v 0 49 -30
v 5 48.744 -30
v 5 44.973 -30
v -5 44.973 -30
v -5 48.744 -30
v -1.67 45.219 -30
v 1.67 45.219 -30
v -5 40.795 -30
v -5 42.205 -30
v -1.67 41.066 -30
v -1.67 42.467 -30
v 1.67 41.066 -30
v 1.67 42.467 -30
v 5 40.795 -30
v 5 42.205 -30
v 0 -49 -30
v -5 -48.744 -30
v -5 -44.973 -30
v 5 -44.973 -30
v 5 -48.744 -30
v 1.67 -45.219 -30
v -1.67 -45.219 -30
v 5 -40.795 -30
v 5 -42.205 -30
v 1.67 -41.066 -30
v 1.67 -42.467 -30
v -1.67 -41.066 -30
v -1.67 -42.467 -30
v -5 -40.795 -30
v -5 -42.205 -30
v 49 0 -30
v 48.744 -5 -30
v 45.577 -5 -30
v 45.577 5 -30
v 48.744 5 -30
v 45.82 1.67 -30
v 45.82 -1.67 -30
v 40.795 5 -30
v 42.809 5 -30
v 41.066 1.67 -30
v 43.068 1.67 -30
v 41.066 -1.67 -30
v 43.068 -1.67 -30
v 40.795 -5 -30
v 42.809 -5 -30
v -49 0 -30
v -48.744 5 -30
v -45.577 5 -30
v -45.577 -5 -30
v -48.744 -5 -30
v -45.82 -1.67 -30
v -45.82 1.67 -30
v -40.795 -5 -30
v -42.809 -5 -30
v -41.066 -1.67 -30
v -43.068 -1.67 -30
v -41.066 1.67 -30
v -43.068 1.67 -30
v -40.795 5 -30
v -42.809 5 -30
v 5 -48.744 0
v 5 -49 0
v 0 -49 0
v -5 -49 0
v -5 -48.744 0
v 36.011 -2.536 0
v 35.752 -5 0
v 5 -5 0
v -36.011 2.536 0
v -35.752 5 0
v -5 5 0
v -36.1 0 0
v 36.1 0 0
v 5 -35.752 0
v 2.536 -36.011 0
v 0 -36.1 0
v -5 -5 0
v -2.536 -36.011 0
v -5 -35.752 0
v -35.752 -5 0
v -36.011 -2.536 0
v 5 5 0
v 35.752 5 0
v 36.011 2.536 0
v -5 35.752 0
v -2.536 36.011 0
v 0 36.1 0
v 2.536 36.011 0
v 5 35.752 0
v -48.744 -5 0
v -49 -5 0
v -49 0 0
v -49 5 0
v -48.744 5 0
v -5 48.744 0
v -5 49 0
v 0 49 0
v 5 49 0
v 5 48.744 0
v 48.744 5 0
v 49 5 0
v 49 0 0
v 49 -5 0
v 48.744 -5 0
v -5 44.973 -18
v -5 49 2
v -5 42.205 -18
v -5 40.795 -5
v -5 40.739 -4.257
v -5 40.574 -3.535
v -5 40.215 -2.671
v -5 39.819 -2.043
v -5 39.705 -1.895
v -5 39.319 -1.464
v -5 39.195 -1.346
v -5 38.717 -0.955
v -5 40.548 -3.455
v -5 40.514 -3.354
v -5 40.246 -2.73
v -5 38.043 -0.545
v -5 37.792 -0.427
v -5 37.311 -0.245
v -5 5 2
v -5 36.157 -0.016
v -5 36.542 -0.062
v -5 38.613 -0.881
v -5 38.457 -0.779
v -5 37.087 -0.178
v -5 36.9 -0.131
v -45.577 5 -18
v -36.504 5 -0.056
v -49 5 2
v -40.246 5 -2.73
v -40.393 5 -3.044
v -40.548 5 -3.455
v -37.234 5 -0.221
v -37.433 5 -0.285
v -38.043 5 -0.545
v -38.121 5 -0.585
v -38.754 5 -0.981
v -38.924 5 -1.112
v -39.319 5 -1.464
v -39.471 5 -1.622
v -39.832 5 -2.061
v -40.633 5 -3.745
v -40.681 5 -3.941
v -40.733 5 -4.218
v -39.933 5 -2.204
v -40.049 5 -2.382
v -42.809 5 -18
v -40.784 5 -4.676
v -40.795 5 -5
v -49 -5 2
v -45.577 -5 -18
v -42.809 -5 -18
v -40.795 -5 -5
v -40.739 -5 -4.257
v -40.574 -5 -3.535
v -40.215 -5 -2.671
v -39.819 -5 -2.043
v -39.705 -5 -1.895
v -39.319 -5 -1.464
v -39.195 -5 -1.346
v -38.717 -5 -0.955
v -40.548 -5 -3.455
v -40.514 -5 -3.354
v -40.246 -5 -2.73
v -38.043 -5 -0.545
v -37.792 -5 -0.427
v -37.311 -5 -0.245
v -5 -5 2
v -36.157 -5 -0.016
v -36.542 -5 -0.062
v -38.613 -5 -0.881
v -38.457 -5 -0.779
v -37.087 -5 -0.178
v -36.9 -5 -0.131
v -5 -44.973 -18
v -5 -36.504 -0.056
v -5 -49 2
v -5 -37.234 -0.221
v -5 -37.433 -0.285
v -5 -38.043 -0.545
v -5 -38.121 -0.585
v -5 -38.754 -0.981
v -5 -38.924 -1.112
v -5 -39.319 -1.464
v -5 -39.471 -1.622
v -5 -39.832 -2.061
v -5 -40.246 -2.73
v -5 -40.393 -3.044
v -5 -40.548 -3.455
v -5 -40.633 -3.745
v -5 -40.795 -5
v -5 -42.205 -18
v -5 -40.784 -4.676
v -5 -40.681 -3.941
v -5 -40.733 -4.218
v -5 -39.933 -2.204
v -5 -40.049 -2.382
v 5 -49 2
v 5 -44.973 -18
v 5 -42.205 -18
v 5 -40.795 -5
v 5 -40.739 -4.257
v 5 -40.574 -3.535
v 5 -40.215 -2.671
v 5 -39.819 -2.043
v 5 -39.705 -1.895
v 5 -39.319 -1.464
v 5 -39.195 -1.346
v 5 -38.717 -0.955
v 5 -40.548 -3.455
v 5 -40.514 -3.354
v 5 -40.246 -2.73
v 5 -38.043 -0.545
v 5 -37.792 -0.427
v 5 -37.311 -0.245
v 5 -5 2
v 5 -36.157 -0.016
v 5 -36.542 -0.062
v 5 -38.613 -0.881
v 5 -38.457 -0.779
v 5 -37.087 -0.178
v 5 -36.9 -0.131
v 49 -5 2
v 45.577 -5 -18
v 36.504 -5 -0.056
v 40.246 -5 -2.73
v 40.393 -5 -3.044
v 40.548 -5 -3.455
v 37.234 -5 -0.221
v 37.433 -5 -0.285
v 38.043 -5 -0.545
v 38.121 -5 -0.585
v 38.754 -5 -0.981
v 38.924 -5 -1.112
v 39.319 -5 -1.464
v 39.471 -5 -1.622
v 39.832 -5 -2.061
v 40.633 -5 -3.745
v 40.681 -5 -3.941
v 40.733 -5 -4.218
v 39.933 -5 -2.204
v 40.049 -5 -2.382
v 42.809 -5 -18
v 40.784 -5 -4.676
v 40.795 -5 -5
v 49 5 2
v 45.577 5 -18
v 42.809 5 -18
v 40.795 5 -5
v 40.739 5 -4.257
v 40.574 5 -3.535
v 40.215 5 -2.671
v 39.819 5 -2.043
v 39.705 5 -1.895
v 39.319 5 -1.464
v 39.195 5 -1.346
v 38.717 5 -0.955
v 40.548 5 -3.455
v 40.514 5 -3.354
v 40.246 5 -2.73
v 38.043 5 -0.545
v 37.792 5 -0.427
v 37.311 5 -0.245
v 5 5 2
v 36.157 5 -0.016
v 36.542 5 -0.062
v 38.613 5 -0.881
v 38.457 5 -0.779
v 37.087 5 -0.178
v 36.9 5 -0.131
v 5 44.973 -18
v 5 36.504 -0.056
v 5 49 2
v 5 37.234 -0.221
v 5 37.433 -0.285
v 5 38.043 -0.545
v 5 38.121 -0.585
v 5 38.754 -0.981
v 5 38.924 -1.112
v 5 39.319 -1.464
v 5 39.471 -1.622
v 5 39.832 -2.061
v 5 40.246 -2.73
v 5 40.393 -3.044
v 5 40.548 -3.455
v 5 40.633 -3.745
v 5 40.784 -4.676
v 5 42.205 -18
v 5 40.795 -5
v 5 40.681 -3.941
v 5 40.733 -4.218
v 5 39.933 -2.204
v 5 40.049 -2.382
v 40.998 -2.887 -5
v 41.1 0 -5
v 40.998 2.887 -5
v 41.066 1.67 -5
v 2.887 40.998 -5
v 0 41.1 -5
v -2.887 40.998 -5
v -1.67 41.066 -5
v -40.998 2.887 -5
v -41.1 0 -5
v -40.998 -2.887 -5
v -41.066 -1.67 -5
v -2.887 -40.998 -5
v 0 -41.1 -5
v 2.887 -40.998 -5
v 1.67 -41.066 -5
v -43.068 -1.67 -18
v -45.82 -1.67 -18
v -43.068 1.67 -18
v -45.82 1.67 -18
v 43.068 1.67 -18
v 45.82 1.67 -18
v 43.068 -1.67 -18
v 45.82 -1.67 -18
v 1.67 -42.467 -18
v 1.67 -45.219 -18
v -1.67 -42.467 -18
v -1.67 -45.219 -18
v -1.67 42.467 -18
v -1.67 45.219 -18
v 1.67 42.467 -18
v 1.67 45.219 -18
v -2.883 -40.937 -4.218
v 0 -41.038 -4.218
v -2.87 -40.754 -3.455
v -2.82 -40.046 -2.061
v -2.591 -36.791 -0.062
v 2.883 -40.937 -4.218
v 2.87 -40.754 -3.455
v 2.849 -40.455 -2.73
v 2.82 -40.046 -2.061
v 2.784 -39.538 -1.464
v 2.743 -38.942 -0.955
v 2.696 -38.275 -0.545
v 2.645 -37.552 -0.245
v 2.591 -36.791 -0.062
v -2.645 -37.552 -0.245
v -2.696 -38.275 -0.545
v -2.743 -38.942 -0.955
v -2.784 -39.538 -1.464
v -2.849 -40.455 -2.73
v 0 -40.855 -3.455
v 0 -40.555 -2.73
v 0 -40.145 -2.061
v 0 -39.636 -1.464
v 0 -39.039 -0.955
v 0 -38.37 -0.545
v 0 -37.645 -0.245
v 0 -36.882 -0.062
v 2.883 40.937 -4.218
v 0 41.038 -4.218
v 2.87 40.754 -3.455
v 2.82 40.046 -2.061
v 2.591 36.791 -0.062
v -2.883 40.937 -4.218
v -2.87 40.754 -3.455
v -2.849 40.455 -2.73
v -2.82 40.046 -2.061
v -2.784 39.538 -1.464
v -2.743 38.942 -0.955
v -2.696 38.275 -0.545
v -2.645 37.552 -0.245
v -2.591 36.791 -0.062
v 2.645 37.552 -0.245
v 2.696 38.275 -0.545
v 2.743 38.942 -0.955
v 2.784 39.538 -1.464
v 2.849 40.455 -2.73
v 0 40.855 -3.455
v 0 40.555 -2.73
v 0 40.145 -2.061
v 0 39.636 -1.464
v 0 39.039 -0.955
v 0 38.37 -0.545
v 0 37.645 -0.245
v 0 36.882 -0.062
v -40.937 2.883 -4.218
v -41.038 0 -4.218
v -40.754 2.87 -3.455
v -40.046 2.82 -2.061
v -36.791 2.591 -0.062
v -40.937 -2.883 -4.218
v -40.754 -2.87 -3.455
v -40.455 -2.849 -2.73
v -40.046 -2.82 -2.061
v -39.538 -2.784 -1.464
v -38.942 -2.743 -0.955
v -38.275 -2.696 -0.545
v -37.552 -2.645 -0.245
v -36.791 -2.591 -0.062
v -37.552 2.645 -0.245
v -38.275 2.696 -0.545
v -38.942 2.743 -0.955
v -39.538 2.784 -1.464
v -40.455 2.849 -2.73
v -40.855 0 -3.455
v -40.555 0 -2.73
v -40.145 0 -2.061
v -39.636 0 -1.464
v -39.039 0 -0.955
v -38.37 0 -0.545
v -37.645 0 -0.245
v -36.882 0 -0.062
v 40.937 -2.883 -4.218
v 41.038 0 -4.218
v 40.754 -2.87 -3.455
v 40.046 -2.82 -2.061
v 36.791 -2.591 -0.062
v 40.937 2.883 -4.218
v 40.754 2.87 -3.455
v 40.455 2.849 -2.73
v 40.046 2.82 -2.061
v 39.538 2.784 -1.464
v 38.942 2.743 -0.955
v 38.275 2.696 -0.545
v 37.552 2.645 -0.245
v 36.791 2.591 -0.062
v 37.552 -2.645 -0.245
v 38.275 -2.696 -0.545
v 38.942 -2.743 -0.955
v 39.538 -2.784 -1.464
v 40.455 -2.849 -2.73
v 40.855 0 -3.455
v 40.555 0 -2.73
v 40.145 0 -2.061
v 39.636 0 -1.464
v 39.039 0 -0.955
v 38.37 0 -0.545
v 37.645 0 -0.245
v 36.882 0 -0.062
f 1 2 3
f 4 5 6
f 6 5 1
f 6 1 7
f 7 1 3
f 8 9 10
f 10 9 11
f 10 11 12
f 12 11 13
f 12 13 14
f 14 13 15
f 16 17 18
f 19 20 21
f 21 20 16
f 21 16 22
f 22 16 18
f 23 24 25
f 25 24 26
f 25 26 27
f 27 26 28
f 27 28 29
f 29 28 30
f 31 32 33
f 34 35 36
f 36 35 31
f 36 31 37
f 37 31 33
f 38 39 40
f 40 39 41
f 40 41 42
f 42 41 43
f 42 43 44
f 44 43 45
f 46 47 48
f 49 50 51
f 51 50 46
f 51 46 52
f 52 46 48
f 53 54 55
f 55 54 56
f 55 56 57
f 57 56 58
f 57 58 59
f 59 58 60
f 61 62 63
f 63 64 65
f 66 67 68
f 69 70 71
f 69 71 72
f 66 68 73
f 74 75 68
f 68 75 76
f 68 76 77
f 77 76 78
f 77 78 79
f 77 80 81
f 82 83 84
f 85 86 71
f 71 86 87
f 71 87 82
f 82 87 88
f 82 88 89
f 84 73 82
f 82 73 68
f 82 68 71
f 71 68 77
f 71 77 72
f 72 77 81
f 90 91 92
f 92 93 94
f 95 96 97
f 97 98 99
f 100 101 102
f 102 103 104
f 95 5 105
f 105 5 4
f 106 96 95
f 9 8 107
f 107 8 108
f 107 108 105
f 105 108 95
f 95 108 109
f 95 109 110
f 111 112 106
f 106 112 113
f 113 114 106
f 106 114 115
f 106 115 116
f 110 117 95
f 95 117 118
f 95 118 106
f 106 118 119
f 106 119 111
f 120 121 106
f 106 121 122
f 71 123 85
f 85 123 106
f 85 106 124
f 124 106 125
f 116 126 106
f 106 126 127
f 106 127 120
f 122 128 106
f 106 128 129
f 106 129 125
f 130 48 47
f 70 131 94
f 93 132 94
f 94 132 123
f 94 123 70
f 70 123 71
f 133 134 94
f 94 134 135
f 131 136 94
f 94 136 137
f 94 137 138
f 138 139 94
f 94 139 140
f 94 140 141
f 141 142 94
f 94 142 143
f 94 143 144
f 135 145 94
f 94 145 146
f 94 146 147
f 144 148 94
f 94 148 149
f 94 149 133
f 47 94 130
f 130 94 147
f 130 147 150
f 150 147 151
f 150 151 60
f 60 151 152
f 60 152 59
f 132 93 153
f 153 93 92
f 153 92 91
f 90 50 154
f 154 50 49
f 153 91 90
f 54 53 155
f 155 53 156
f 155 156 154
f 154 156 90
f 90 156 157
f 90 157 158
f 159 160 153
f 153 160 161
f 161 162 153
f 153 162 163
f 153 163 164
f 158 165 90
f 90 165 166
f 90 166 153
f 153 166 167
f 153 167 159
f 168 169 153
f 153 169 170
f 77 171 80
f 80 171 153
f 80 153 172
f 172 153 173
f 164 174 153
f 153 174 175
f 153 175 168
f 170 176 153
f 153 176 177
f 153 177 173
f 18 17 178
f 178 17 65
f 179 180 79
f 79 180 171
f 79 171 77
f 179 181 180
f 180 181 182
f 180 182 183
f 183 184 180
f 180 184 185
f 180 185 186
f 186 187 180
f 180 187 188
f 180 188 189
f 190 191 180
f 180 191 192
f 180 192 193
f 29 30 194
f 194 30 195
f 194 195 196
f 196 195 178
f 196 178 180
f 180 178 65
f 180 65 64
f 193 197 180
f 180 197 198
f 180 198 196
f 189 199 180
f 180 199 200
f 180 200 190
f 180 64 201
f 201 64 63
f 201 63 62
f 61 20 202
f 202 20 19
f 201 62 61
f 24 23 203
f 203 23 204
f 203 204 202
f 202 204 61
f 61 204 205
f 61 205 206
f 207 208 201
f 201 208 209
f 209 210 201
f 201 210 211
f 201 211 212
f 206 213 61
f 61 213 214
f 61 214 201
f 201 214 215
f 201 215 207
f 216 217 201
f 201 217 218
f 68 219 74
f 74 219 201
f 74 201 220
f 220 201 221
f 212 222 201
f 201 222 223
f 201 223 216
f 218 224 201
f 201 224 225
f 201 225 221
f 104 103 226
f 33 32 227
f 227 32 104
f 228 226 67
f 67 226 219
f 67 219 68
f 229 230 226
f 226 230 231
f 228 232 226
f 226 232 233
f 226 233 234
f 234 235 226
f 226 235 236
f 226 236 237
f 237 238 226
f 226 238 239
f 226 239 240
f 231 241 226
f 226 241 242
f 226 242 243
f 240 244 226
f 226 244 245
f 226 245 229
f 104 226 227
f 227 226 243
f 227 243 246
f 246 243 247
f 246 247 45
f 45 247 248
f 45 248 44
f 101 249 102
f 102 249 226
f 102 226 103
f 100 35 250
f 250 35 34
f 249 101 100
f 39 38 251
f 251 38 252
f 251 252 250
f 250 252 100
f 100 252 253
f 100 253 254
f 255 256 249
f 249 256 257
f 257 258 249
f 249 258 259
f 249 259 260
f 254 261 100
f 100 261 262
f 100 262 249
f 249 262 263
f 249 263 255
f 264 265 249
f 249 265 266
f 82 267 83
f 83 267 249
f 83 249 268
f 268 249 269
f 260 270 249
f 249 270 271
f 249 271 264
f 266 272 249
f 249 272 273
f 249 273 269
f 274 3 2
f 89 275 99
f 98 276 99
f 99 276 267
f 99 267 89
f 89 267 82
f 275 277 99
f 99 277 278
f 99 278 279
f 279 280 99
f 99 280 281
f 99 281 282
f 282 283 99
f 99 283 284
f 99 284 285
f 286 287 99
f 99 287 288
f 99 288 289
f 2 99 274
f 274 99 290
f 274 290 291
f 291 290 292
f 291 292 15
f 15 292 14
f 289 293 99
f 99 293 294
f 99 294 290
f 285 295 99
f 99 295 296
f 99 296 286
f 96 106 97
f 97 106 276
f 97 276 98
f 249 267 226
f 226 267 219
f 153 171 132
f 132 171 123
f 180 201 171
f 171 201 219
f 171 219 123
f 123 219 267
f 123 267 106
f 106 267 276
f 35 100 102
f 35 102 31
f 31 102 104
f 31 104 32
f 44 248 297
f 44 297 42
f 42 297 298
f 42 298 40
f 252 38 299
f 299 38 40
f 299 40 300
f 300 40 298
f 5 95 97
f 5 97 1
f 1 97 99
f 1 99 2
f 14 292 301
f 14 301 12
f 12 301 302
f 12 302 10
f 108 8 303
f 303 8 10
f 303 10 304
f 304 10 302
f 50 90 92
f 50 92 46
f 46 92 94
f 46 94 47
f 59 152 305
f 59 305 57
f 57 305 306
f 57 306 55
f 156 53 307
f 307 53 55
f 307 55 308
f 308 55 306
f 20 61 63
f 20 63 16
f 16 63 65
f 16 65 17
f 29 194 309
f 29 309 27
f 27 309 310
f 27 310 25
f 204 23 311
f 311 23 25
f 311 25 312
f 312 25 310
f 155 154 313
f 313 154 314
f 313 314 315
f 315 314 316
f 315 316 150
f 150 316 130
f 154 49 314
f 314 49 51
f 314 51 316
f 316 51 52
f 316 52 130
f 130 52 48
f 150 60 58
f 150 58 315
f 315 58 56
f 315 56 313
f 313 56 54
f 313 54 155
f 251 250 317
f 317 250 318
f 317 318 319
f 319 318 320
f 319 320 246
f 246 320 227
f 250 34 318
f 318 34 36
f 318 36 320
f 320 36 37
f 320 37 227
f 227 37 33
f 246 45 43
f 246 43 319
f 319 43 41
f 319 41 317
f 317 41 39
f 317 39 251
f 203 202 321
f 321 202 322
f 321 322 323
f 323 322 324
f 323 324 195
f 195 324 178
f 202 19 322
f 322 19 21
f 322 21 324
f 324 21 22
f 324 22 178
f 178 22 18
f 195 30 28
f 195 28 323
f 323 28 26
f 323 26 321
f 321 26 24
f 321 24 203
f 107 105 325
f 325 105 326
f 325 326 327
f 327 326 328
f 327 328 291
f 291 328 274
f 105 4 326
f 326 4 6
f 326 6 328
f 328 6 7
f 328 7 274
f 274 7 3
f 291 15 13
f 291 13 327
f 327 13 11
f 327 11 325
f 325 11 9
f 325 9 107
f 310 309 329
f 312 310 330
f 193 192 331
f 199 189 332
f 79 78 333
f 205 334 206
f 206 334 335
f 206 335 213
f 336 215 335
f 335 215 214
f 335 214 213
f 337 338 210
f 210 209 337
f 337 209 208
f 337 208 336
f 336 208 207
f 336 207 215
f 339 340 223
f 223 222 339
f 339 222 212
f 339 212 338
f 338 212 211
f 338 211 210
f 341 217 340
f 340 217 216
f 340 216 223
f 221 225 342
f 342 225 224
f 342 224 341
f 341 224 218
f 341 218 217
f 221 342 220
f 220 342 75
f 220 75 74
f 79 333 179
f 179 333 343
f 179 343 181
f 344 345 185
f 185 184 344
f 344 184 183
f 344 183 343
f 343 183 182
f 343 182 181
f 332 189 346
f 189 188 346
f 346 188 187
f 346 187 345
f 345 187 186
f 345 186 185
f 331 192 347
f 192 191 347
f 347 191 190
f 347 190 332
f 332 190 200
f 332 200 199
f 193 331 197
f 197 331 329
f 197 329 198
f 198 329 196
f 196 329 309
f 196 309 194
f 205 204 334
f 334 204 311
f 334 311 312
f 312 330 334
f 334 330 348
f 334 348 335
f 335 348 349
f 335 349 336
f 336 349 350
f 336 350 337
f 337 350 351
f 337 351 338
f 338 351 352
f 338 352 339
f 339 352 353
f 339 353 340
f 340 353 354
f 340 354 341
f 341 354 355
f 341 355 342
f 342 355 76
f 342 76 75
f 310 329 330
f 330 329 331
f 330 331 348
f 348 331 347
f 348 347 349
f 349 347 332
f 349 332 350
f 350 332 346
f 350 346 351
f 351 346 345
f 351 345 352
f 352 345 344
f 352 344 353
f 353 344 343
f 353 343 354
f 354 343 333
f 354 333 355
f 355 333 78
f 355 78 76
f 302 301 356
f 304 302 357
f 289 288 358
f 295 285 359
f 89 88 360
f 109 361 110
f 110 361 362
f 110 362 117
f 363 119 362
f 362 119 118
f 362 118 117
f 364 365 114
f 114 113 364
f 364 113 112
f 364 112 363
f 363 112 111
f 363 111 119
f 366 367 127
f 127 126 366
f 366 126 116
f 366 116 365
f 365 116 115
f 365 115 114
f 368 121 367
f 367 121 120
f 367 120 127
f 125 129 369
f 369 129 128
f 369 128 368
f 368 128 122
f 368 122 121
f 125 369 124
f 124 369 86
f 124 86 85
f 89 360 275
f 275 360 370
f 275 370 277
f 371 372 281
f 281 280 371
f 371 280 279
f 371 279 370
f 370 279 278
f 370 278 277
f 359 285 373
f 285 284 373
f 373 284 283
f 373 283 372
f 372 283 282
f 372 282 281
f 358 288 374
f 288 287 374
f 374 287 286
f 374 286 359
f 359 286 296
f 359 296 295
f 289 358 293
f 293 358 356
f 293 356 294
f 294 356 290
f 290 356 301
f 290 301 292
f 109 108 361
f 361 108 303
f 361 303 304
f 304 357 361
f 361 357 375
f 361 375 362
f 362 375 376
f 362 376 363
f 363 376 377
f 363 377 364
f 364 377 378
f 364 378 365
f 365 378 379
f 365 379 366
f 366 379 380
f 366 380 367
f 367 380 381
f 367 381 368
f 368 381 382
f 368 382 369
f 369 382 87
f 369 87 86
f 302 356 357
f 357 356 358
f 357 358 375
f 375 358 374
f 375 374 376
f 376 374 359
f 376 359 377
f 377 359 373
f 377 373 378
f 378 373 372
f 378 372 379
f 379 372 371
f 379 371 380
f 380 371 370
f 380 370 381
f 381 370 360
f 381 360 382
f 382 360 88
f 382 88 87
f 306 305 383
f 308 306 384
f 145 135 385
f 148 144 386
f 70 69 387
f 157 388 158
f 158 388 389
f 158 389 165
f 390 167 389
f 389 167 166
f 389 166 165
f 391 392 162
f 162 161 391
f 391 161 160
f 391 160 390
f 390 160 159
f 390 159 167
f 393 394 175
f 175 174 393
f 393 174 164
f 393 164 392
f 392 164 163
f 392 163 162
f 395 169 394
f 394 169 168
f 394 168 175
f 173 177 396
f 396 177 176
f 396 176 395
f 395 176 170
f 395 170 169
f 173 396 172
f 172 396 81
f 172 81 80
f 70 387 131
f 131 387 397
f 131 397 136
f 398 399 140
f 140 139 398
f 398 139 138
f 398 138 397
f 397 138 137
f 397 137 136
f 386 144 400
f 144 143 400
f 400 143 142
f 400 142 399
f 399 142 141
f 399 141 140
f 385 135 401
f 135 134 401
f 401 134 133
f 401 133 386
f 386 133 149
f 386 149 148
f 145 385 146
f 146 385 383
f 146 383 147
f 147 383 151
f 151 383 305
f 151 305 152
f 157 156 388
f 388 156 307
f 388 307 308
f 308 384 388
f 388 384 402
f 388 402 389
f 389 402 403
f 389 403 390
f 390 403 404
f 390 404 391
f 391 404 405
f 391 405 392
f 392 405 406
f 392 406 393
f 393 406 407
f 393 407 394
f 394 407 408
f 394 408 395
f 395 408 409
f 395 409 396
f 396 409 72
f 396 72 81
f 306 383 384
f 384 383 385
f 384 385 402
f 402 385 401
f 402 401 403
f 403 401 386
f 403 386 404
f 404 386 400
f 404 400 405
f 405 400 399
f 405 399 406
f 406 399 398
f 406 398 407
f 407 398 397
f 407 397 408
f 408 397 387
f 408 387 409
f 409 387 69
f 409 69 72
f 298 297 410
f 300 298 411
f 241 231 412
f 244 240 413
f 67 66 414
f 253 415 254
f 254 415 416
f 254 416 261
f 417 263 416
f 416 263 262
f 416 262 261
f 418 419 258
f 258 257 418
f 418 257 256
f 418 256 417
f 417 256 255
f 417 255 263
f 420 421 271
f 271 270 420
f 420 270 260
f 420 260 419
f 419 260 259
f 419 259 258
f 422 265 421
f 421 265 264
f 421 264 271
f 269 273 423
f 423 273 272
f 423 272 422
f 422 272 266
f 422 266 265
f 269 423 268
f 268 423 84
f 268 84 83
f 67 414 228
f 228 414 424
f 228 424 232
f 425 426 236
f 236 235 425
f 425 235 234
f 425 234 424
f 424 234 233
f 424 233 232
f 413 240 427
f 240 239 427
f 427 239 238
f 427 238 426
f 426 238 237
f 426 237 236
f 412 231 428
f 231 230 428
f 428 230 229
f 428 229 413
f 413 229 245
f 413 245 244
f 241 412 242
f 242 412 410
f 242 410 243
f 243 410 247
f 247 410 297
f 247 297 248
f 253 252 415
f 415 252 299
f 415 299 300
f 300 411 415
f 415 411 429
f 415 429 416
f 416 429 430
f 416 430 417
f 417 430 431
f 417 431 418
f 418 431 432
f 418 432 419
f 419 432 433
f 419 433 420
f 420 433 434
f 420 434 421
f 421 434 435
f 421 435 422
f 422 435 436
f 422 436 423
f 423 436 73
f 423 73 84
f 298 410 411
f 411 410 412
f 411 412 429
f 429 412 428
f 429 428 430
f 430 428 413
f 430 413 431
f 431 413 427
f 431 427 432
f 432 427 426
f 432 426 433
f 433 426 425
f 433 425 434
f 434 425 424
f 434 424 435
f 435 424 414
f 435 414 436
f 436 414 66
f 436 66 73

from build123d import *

# Parameters (mm, degrees)
SKETCH1_W           = 10
SKETCH1_H           = 10
SKETCH1_W_2         = 44
SKETCH1_H_2         = 44
BOSS_EXTRUDE1_DEPTH = 2
BOSS_EXTRUDE2_DEPTH = 30
CUT_EXTRUDE1_DEPTH  = 12
CUT_EXTRUDE2_DEPTH  = 12
FILLET1_R           = 5


with BuildPart() as part:
    # Sketch1 → Boss-Extrude1 (new body)
    with BuildSketch(Plane.XY):
        Rectangle(SKETCH1_W, SKETCH1_H)
        with Locations((-27, 0)):
            Rectangle(SKETCH1_W_2, SKETCH1_H)
        with Locations((0, 27)):
            Rectangle(SKETCH1_W, SKETCH1_H_2)
        with Locations((27, 0)):
            Rectangle(SKETCH1_W_2, SKETCH1_H)
        with Locations((0, -27)):
            Rectangle(SKETCH1_W, SKETCH1_H_2)
    extrude(amount=BOSS_EXTRUDE1_DEPTH)

    # Sketch3 → Boss-Extrude2 (add)
    with BuildSketch(Plane(origin=(0, 0, 0), x_dir=(-1, 0, 0), z_dir=(0, 0, -1))):
        with BuildLine():
            Line((-48.744230428, 5), (-40.794730052, 5))
            ThreePointArc((-40.794730052, 5), (-41.1, 0), (-40.794730052, -5))
            Line((-40.794730052, -5), (-48.744230428, -5))
            ThreePointArc((-48.744230428, -5), (-49, 0), (-48.744230428, 5))
        make_face()
        with BuildLine():
            Line((5, 48.744230428), (5, 40.794730052))
            ThreePointArc((5, 40.794730052), (0, 41.1), (-5, 40.794730052))
            Line((-5, 40.794730052), (-5, 48.744230428))
            ThreePointArc((-5, 48.744230428), (0, 49), (5, 48.744230428))
        make_face()
        with BuildLine():
            Line((48.744230428, -5), (40.794730052, -5))
            ThreePointArc((40.794730052, -5), (41.1, 0), (40.794730052, 5))
            Line((40.794730052, 5), (48.744230428, 5))
            ThreePointArc((48.744230428, 5), (49, 0), (48.744230428, -5))
        make_face()
        with BuildLine():
            Line((-5, -48.744230428), (-5, -40.794730052))
            ThreePointArc((-5, -40.794730052), (0, -41.1), (5, -40.794730052))
            Line((5, -40.794730052), (5, -48.744230428))
            ThreePointArc((5, -48.744230428), (0, -49), (-5, -48.744230428))
        make_face()
    extrude(amount=BOSS_EXTRUDE2_DEPTH)

    # Sketch4 → Cut-Extrude1 (cut)
    with BuildSketch(Plane(origin=(0, 0, -30), x_dir=(-1, 0, 0), z_dir=(0, 0, -1))):
        with BuildLine():
            Line((-11.10557259, -44.484702511), (-11.461711595, -41.548034458))
            ThreePointArc((-11.461711595, -41.548034458), (-43.096967164, -0.511293704), (-12.444181806, 41.264419773))
            Line((-12.444181806, 41.264419773), (-14.129590932, 43.618541471))
            ThreePointArc((-14.129590932, 43.618541471), (-45.823015718, -1.572809738), (-11.10557259, -44.484702511))
        make_face()
        with BuildLine():
            Line((12.001150898, -44.251495762), (13.254659766, -41.011266677))
            ThreePointArc((13.254659766, -41.011266677), (43.094432914, 0.692713402), (11.929696672, 41.416087905))
            Line((11.929696672, 41.416087905), (17.322221173, 42.451892227))
            ThreePointArc((17.322221173, 42.451892227), (45.76389854, -2.80857445), (12.001150898, -44.251495762))
        make_face()
    extrude(amount=-CUT_EXTRUDE1_DEPTH, mode=Mode.SUBTRACT)

    # Sketch5 → Cut-Extrude2 (cut)
    with BuildSketch(Plane(origin=(0, 0, -30), x_dir=(-1, 0, 0), z_dir=(0, 0, -1))):
        with BuildLine():
            Line((-42.028433613, 16.76822197), (-39.816299645, 14.863118199))
            ThreePointArc((-39.816299645, 14.863118199), (-0.915555868, 42.490137179), (39.139115264, 16.564409328))
            Line((39.139115264, 16.564409328), (42.109177665, 16.564409328))
            ThreePointArc((42.109177665, 16.564409328), (0.109612038, 45.24986724), (-42.028433613, 16.76822197))
        make_face()
        with BuildLine():
            Line((-42.268216712, -16.154267422), (-39.699430061, -15.172516364))
            ThreePointArc((-39.699430061, -15.172516364), (-1.394243302, -42.477124263), (38.619024806, -17.743193711))
            Line((38.619024806, -17.743193711), (40.007756731, -21.141000481))
            ThreePointArc((40.007756731, -21.141000481), (-2.737571274, -45.167114182), (-42.268216712, -16.154267422))
        make_face()
    extrude(amount=-CUT_EXTRUDE2_DEPTH, mode=Mode.SUBTRACT)

    # Fillet1
    fillet1_edges = [part.edges().sort_by_distance(p)[0] for p in [
        (41.1, 0, 0),
        (0, 41.1, 0),
        (-41.1, 0, 0),
        (0, -41.1, 0),
    ]]
    fillet(fillet1_edges, radius=FILLET1_R)


solid = part.part
